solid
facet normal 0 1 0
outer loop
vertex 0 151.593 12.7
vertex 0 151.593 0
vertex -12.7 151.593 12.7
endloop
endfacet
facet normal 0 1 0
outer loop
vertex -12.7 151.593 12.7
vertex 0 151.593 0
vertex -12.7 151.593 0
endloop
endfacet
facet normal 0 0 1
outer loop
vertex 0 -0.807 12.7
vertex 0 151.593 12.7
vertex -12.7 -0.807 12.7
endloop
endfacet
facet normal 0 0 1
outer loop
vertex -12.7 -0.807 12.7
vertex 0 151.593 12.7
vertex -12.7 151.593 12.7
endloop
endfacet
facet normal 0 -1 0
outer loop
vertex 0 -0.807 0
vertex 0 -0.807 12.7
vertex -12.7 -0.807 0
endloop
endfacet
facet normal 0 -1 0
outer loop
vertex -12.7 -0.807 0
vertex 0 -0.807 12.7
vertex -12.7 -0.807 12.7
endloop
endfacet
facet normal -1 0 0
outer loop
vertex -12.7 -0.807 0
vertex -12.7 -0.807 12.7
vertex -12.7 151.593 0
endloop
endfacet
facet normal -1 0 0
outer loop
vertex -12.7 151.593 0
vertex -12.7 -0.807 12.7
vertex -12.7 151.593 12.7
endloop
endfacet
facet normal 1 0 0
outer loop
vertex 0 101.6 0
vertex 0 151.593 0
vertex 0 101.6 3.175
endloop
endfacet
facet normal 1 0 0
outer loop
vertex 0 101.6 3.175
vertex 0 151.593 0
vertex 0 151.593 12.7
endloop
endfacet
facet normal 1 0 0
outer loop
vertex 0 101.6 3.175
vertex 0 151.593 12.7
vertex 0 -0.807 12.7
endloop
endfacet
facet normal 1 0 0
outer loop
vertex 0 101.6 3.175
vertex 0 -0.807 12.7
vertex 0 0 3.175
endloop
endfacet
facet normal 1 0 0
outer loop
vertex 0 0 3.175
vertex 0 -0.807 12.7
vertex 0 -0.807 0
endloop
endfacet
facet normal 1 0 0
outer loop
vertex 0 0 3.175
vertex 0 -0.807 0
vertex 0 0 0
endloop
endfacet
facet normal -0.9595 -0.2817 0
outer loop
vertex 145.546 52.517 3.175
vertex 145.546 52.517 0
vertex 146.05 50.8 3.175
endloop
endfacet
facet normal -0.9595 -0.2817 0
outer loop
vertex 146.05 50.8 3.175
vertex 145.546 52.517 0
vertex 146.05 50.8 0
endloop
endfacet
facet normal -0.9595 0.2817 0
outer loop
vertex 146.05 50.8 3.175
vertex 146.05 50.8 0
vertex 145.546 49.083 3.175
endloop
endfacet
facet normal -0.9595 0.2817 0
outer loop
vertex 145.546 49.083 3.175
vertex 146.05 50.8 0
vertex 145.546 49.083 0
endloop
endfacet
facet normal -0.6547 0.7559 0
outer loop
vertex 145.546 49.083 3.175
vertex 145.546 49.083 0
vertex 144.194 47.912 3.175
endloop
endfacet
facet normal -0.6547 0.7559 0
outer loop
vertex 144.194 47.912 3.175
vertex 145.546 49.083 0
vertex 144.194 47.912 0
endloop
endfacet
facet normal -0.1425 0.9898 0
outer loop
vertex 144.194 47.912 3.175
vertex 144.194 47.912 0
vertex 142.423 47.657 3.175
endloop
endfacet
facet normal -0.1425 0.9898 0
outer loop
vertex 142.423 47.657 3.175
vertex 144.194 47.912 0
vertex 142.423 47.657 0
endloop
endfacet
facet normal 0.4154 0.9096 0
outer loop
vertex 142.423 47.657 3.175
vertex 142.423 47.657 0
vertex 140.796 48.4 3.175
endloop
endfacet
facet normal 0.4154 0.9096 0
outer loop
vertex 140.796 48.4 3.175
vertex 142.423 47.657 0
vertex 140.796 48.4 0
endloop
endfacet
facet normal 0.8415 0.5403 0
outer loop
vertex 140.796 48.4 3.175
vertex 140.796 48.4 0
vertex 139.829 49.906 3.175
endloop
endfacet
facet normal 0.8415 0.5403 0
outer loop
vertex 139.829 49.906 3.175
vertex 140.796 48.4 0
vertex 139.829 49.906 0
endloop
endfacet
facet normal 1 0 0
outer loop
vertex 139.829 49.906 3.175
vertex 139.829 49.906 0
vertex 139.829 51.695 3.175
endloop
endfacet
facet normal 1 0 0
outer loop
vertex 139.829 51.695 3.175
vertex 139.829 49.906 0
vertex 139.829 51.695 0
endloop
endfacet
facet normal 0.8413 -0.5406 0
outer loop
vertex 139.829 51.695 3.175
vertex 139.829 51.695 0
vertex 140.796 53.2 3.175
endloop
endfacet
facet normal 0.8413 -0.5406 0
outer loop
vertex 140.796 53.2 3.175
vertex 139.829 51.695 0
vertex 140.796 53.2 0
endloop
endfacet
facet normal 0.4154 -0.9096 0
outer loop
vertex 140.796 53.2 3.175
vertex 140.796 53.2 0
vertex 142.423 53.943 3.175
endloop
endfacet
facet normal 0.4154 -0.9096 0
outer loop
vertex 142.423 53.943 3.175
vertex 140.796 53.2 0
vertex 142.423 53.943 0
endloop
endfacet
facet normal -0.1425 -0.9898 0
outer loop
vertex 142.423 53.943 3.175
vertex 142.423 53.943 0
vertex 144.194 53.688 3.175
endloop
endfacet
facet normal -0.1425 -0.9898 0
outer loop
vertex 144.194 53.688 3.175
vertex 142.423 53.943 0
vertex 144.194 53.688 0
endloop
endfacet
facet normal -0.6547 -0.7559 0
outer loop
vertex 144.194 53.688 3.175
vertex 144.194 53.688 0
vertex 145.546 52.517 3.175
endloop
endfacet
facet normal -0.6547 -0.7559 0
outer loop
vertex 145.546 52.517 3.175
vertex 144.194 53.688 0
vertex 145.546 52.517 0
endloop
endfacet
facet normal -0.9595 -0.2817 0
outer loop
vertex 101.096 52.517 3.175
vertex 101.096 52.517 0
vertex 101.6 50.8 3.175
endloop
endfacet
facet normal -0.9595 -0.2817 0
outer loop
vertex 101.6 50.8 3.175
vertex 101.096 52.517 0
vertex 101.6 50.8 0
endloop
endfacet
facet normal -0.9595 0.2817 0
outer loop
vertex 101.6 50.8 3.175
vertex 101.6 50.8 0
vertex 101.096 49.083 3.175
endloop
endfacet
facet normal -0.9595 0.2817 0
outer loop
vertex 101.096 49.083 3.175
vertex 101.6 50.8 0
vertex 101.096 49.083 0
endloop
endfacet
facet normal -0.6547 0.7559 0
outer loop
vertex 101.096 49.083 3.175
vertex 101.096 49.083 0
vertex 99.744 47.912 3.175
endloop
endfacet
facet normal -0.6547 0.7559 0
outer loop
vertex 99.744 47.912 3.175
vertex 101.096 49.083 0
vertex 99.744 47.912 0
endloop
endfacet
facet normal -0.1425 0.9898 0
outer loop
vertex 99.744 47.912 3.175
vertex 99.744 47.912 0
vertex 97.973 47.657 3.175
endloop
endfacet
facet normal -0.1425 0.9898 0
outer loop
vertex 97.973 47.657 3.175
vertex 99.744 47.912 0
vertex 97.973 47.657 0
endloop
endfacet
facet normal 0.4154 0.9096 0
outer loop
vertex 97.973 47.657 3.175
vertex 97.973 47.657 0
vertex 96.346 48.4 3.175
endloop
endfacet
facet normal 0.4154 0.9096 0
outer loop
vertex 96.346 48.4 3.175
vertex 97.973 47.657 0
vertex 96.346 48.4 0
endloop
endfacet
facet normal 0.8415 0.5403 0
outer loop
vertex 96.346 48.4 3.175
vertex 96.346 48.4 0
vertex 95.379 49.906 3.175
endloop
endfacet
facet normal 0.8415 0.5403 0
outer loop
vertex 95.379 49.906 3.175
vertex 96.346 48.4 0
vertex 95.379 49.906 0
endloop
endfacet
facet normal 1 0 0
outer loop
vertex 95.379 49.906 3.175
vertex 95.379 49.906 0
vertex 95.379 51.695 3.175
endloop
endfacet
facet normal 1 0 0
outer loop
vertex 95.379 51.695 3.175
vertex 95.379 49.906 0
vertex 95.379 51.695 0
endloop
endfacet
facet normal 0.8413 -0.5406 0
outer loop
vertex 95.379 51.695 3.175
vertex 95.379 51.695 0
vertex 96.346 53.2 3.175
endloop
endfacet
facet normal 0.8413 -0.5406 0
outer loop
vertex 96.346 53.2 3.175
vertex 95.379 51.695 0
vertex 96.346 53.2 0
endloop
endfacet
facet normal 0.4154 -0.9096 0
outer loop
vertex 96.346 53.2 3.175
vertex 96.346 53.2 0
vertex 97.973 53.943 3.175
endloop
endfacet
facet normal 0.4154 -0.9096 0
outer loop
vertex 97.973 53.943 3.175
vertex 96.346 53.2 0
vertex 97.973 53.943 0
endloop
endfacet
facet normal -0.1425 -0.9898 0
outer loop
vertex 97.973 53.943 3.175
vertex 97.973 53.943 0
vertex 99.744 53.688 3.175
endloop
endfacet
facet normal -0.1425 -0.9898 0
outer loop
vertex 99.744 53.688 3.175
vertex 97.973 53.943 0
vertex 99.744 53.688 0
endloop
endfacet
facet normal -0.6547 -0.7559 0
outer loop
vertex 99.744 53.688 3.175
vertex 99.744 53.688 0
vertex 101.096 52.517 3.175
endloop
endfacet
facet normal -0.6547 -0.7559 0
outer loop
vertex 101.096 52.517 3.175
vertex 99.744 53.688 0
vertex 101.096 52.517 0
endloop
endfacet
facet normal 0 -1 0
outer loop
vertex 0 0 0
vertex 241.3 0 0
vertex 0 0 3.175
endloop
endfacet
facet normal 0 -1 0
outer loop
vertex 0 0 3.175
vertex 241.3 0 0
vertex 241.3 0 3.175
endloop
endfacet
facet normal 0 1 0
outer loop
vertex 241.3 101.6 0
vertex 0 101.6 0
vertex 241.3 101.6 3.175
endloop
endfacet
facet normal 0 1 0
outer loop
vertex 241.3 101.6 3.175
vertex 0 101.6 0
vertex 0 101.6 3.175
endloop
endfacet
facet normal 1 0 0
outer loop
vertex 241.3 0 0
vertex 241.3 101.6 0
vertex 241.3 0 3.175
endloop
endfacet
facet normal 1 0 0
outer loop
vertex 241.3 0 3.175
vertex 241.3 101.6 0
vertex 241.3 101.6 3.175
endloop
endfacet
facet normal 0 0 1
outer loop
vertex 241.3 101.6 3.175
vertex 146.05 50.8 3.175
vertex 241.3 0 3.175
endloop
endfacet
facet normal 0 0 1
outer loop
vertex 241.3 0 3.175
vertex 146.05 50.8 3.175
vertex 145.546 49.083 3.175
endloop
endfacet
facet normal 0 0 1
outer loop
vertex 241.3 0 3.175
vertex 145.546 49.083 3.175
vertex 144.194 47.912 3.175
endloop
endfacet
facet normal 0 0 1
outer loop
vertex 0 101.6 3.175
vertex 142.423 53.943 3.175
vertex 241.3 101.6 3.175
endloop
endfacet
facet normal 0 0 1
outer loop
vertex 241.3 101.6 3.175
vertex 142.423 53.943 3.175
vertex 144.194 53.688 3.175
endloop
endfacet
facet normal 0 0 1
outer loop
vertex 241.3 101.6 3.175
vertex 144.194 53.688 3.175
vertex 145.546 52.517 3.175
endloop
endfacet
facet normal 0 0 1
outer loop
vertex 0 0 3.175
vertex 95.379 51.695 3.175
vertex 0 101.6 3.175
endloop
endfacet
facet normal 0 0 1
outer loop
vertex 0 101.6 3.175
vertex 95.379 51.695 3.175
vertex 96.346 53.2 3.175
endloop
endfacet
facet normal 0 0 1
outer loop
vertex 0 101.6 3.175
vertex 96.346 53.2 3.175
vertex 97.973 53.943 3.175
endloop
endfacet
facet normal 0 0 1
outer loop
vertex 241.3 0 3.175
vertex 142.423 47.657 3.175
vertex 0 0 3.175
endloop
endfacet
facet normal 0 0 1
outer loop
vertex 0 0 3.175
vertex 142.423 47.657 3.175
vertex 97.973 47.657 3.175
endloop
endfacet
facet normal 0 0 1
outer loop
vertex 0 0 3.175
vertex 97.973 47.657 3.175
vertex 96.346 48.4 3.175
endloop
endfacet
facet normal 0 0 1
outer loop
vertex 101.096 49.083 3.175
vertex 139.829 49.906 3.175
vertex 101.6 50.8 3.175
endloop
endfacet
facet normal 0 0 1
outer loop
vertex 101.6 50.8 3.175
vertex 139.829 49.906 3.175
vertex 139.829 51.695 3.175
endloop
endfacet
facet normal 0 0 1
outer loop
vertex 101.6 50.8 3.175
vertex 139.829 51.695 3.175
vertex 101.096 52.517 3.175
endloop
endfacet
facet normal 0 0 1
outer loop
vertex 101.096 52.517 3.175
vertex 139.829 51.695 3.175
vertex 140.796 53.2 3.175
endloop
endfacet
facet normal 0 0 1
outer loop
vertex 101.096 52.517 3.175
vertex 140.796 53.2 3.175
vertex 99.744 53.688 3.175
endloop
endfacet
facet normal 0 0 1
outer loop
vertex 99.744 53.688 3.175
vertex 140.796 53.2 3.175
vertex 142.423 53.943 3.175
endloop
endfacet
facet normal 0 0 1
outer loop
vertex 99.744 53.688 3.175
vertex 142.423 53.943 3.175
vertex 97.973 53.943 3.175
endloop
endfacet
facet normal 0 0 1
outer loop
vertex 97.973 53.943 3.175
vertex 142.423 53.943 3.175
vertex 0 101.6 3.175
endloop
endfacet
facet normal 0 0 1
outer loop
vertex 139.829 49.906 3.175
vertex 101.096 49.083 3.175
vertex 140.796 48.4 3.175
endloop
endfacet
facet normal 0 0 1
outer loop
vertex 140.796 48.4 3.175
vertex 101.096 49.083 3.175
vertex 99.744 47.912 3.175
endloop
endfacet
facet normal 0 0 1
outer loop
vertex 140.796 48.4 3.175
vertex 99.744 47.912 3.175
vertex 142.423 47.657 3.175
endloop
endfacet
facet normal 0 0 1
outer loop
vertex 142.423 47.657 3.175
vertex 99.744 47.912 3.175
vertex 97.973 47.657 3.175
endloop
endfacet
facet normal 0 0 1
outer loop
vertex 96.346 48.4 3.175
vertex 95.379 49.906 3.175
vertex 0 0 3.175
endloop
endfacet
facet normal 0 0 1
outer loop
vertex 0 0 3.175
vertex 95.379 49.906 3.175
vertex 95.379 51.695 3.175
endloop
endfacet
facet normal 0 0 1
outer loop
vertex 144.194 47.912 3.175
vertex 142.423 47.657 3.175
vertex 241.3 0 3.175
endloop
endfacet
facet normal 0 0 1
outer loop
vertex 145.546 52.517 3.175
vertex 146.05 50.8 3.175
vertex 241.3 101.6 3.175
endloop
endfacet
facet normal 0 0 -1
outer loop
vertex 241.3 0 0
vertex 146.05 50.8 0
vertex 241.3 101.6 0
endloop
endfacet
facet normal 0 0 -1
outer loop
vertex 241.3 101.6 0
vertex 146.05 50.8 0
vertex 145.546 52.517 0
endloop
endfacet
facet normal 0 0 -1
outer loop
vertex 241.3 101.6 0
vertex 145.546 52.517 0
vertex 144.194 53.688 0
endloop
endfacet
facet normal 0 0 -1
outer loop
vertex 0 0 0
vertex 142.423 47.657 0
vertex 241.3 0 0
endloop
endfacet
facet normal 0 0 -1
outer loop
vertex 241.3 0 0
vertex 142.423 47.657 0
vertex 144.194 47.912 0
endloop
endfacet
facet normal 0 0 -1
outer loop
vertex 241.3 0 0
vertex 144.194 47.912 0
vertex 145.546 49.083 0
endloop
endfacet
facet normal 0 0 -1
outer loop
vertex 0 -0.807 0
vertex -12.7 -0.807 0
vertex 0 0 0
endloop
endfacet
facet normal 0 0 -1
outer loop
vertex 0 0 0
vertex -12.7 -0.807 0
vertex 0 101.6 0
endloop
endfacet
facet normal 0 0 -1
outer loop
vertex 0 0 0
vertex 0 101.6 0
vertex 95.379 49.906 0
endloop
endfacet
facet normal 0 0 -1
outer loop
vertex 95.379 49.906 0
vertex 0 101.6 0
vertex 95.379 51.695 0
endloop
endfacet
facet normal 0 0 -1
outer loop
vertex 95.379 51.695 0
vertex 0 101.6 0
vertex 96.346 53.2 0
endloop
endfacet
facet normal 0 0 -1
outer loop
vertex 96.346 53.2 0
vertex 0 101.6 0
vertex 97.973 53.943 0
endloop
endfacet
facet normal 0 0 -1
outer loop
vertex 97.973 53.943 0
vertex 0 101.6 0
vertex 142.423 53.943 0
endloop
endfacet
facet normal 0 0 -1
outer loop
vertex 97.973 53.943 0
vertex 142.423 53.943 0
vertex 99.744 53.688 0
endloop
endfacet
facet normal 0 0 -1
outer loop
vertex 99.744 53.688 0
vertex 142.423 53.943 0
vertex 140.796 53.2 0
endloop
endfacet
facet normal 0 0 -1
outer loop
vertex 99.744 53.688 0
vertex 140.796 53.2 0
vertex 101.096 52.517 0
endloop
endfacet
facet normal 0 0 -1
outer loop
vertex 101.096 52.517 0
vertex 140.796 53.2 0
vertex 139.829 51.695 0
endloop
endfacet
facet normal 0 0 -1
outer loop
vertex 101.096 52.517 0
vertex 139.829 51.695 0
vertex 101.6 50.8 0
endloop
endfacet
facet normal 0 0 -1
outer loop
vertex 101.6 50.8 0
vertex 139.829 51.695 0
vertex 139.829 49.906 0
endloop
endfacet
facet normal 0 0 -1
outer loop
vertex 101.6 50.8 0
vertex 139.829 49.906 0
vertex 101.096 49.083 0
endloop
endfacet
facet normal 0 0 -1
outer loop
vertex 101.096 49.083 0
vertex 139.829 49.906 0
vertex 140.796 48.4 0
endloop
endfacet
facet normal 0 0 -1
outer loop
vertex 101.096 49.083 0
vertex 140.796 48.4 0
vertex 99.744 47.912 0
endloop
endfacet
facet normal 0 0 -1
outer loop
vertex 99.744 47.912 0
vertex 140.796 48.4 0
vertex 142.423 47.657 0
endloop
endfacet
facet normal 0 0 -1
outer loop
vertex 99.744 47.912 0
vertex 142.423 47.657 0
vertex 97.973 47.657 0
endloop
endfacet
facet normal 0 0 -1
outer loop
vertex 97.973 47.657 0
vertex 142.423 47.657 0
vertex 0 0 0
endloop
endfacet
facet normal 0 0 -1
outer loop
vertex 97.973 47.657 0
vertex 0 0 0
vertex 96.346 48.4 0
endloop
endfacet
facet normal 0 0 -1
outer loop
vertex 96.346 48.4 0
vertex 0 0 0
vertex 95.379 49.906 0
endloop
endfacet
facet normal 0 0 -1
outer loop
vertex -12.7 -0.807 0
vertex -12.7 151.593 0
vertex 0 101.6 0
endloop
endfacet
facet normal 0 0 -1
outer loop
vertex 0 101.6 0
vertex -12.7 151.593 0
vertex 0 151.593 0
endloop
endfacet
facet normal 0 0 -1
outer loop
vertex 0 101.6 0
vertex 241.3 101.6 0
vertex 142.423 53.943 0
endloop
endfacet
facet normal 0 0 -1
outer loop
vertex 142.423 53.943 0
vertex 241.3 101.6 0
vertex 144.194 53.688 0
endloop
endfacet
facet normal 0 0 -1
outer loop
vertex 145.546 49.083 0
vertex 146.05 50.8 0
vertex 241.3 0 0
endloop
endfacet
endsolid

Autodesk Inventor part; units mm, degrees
ref_plane "YZ Plane" through (0, 0, 0) normal (1, 0, 0) x (0, 1, 0)
ref_plane "XZ Plane" through (0, 0, 0) normal (0, 1, 0) x (-1, 0, 0)
ref_plane "XY Plane" through (0, 0, 0) normal (0, 0, 1) x (1, 0, 0)
sketch "Sketch1" plane through (0, 0, 0) normal (0, 0, 1) x (1, 0, 0)
  line L0 (0, 0) -> (241.3, 0)
  line L1 (241.3, 0) -> (241.3, 101.6)
  line L2 (241.3, 101.6) -> (0, 101.6)
  line L3 (0, 101.6) -> (0, 0)
  circle A0 centre (98.425, 50.8) radius 3.175
  circle A1 centre (142.875, 50.8) radius 3.175
  dimension "d0" = 241.3
  dimension "d1" = 101.6
  dimension "d2" = 6.35
  dimension "d3" = 6.35
  dimension "d4" = 44.45
  dimension "d5" = 98.425
  dimension "d6" = 50.8
extrude "Extrusion1" add sketch "Sketch1" along normal blind 3.175
sketch "Sketch2" plane through (0, 0, 0) normal (-1, 0, 0) x (0, 0, 1)
  line L0 (0, -0.8069) -> (12.7, -0.8069)
  line L1 (12.7, -0.8069) -> (12.7, 151.5931)
  line L2 (12.7, 151.5931) -> (0, 151.5931)
  line L3 (0, 151.5931) -> (0, -0.8069)
  line L4 (0, 101.6) -> (0, 0) projected
  dimension "d9" = 12.7
  dimension "d10" = 152.4
  dimension "d11" = 0
extrude "Extrusion2" add sketch "Sketch2" along normal blind 12.7
properties part number "Handle"
